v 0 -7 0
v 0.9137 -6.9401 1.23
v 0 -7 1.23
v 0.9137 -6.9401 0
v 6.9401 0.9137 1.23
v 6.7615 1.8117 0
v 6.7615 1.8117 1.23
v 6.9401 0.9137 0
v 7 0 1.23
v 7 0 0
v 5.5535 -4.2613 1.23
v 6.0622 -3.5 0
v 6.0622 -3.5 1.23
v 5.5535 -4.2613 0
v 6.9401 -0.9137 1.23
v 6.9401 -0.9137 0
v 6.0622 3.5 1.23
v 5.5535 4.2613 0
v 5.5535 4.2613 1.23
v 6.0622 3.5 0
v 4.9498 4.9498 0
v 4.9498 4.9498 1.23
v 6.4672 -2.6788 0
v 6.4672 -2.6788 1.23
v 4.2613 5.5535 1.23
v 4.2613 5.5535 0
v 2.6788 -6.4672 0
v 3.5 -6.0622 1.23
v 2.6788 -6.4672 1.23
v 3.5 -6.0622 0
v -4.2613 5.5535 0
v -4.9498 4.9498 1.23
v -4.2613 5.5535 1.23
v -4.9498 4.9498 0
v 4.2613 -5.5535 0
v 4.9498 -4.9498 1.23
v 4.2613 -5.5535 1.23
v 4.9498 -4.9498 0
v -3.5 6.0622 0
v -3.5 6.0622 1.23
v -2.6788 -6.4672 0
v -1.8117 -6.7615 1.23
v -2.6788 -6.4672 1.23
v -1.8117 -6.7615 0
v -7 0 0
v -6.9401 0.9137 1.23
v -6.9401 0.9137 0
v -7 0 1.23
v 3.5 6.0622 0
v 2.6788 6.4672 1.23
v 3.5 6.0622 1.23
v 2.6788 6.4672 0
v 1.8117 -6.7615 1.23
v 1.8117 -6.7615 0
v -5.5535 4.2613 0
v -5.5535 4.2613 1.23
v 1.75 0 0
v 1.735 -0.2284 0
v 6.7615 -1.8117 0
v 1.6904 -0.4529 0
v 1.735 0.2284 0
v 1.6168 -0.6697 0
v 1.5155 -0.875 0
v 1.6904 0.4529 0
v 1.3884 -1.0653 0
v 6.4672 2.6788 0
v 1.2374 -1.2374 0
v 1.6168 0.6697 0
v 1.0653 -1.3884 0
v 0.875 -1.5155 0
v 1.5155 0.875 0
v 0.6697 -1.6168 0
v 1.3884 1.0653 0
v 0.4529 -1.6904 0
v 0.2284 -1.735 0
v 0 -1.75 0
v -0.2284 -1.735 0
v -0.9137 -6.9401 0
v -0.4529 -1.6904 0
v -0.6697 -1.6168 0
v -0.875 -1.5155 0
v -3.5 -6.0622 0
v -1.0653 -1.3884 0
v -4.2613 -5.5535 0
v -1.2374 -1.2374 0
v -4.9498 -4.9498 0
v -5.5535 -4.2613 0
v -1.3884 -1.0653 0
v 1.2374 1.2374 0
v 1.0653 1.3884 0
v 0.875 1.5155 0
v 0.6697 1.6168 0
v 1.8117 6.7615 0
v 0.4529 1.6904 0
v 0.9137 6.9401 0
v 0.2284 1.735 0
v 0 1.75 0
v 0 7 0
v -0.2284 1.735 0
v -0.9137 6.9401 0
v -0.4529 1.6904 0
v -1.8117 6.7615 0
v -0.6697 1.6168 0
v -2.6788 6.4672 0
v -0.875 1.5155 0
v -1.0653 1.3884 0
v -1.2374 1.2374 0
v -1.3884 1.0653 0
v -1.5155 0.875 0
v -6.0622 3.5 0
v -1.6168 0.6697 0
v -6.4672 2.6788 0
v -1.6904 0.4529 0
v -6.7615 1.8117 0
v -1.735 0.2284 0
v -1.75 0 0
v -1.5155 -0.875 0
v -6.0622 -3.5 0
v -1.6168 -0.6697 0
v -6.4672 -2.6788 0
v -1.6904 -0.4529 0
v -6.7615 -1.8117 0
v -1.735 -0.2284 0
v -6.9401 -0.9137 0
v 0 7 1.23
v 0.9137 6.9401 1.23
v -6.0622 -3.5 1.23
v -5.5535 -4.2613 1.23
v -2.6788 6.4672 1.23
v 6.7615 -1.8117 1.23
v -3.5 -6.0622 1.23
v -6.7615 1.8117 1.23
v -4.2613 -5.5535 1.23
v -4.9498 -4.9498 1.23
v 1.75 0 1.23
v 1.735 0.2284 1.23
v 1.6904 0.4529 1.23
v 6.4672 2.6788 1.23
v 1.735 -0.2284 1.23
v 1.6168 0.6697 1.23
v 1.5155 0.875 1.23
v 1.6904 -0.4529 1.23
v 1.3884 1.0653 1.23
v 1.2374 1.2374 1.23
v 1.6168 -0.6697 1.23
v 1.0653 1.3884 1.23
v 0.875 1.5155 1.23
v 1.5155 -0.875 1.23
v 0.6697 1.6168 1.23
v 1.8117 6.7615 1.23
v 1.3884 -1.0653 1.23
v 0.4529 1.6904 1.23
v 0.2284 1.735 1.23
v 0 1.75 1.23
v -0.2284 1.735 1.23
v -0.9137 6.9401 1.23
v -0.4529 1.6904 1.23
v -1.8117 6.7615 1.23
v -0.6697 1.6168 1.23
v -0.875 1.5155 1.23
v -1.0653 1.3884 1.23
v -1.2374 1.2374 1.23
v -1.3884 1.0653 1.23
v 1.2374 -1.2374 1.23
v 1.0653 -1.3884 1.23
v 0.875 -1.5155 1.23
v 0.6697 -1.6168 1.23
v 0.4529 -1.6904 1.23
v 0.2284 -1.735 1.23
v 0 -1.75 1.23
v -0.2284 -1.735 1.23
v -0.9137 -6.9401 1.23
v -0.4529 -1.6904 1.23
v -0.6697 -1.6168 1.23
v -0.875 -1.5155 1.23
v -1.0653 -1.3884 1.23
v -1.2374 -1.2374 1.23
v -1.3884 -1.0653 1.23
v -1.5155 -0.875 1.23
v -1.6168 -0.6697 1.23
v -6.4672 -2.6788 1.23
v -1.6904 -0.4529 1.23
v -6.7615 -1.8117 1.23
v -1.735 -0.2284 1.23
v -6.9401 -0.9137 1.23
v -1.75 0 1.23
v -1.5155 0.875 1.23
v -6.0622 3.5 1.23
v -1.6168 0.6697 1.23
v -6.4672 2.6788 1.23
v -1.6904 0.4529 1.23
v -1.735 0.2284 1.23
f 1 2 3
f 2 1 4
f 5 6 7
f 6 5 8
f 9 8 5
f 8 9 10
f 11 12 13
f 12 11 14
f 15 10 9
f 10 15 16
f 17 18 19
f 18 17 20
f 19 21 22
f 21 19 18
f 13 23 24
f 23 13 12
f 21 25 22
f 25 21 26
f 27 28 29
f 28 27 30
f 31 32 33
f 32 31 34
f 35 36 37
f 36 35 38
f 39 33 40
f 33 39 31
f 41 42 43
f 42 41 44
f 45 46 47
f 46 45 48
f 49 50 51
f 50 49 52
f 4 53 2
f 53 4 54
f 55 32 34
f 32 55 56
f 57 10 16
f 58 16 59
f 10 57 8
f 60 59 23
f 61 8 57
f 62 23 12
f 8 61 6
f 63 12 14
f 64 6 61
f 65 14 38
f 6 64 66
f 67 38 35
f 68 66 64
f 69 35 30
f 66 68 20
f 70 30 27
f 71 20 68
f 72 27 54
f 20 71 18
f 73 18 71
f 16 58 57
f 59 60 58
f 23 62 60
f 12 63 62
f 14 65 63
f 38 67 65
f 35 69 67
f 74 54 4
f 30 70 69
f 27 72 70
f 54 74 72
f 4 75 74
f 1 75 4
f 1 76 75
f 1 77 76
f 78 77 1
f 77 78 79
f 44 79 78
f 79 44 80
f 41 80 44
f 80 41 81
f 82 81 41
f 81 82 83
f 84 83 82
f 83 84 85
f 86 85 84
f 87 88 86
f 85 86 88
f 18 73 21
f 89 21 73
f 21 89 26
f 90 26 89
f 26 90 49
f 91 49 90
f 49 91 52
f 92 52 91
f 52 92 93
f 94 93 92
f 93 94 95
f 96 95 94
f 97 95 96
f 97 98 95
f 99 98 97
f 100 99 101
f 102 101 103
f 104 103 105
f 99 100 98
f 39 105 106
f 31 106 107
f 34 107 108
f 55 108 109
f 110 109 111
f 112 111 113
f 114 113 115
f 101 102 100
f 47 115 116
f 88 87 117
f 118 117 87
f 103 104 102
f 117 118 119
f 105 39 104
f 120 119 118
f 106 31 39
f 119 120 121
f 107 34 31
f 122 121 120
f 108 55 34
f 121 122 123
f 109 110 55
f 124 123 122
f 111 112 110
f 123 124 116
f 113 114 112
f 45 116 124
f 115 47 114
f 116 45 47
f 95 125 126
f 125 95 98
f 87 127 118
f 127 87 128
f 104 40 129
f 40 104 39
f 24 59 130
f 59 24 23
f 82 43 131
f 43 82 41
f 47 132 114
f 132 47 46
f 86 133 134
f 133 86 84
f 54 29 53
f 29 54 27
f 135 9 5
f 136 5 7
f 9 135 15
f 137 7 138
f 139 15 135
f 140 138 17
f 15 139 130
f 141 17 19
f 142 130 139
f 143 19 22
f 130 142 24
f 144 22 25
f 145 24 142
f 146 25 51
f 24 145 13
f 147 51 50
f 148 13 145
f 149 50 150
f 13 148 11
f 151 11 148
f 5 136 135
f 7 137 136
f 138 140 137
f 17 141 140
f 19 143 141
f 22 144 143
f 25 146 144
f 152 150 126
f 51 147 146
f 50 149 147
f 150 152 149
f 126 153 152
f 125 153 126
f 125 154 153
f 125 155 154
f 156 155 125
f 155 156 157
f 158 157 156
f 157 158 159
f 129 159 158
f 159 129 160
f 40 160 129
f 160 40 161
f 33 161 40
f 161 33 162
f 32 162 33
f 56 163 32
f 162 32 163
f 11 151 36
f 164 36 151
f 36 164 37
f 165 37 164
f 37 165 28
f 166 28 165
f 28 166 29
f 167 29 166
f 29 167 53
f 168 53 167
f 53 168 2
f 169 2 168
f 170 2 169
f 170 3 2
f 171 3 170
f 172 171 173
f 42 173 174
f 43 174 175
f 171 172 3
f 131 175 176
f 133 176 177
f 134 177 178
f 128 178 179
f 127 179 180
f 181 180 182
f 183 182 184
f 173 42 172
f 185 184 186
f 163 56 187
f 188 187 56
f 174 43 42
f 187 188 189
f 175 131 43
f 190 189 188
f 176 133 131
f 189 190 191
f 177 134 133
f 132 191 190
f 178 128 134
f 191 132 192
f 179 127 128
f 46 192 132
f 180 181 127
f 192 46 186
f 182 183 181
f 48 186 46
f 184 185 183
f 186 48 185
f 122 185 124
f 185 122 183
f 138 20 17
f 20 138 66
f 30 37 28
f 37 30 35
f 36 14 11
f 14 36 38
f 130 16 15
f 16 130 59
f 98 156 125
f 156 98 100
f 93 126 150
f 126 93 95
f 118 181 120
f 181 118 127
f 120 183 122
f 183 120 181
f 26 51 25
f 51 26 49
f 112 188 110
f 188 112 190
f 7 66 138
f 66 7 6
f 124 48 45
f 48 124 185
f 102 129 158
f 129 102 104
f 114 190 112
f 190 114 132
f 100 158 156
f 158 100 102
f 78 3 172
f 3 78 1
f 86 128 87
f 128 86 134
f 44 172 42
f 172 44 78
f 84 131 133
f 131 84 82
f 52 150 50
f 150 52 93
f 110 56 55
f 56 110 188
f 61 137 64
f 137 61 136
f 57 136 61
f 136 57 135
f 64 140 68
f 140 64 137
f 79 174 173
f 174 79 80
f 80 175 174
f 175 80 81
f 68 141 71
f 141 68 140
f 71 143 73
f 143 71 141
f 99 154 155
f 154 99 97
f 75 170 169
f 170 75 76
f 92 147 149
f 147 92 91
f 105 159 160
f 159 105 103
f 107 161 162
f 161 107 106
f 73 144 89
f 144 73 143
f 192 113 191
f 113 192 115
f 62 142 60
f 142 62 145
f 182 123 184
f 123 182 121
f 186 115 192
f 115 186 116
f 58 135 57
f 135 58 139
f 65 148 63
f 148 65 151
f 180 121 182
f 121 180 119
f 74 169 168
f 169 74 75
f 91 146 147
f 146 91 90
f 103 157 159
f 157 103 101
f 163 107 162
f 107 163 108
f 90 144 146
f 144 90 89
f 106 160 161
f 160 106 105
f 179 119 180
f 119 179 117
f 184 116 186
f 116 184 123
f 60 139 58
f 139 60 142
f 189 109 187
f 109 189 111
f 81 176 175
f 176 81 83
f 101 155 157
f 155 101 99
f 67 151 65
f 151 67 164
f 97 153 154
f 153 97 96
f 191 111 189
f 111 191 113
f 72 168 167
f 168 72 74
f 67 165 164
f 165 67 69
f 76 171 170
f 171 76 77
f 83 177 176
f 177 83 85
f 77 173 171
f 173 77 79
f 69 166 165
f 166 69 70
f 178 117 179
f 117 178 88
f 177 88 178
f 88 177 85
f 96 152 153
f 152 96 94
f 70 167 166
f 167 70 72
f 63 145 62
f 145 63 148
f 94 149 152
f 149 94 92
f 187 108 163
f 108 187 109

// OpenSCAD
// file: parameters.scad
// =============================================================================
// Gen-AD Vernier flux-claw dual nano-gap — WOUND-AWARE (HARD GATE)
// Improve Gen-AA: tighter m2m ≤5.5, more copper (155 t), run_clear 0.60
// =============================================================================

wire_awg            = 26;
wire_od             = 0.45;
turns               = 155;      // +10 vs Gen-AA 145
fill                = 0.70;
layers_per_face     = 2;
wind_build_axial    = layers_per_face * wire_od * fill;   // 0.63
wind_build_radial   = 3 * wire_od * fill;                 // 0.945

coil_id_r           = 20.5;
coil_od_r           = 61.0;
span_deg            = 25.0;     // 12 stations; vernier vs 16-pole equiv
former_web          = 1.7;
flange_t            = 0.65;
wall                = 1.2;
slot_w              = 2.4;
mount_hole          = 3.5;
tab_len             = 7.0;

former_bare_h       = former_web + 2 * flange_t;            // 3.0
coil_envelope_h     = former_bare_h + 2 * wind_build_axial; // 4.26

run_clear           = 0.60;
gap_spacer_h        = run_clear + wind_build_axial;         // 1.23
m2m                 = coil_envelope_h + 2 * run_clear;      // 5.46 (beats Gen-AA 6.16)

coil_stations       = 12;
bay_r_in            = coil_id_r - 2.0 - wind_build_radial;
bay_r_out           = coil_od_r + 2.0 + wind_build_radial;
bay_span            = span_deg + 4.0;
bay_offset          = 2.0;
stator_thick        = former_bare_h;
stator_od           = 156.0;
shaft_clear_stator  = 36.0;
coil_mount_r        = 28.0;

// Dual rotors: 8+8 Ø20 vernier poles + 24+24 Ø5 flux claws / edge assists
large_pocket_d      = 20.3;
small_pocket_d      = 5.3;
pocket_h            = 5.2;
large_n             = 8;
R_large             = 50.0;
R_small_inner       = 36.0;     // claw inner
R_small_mid         = 50.0;
R_small_outer       = 64.0;
carrier_od          = 152.0;
carrier_thick       = 7.5;
hub_h               = 10.0;
hub_od              = 30.0;
rotor_b_offset_deg  = 22.5;     // vernier offset

shaft_bore          = 8.35;
bearing_d           = 21.85;
bearing_h           = 7.2;
m3_clear            = 3.5;
bolt_r_inner        = 36.0;
bolt_n_inner        = 6;
flange_bolt_r       = 72.0;
flange_bolt_n       = 6;
brace_r             = 68.0;
brace_d             = 4.3;
brace_n             = 4;

spacer_pad_od       = 14.0;
spacer_pad_id       = m3_clear;
endbell_od          = 156.0;
endbell_thick       = 8.0;
endbell_shaft_clear = 10.0;

$fn = 64;
// main file
// Gen-AD gap spacer — h = run_clear + wind_build_axial; print ×12
include <parameters.scad>;
$fn = 48;
difference() {
    cylinder(d=spacer_pad_od, h=gap_spacer_h);
    translate([0, 0, -0.1]) cylinder(d=spacer_pad_id, h=gap_spacer_h + 0.2);
}
